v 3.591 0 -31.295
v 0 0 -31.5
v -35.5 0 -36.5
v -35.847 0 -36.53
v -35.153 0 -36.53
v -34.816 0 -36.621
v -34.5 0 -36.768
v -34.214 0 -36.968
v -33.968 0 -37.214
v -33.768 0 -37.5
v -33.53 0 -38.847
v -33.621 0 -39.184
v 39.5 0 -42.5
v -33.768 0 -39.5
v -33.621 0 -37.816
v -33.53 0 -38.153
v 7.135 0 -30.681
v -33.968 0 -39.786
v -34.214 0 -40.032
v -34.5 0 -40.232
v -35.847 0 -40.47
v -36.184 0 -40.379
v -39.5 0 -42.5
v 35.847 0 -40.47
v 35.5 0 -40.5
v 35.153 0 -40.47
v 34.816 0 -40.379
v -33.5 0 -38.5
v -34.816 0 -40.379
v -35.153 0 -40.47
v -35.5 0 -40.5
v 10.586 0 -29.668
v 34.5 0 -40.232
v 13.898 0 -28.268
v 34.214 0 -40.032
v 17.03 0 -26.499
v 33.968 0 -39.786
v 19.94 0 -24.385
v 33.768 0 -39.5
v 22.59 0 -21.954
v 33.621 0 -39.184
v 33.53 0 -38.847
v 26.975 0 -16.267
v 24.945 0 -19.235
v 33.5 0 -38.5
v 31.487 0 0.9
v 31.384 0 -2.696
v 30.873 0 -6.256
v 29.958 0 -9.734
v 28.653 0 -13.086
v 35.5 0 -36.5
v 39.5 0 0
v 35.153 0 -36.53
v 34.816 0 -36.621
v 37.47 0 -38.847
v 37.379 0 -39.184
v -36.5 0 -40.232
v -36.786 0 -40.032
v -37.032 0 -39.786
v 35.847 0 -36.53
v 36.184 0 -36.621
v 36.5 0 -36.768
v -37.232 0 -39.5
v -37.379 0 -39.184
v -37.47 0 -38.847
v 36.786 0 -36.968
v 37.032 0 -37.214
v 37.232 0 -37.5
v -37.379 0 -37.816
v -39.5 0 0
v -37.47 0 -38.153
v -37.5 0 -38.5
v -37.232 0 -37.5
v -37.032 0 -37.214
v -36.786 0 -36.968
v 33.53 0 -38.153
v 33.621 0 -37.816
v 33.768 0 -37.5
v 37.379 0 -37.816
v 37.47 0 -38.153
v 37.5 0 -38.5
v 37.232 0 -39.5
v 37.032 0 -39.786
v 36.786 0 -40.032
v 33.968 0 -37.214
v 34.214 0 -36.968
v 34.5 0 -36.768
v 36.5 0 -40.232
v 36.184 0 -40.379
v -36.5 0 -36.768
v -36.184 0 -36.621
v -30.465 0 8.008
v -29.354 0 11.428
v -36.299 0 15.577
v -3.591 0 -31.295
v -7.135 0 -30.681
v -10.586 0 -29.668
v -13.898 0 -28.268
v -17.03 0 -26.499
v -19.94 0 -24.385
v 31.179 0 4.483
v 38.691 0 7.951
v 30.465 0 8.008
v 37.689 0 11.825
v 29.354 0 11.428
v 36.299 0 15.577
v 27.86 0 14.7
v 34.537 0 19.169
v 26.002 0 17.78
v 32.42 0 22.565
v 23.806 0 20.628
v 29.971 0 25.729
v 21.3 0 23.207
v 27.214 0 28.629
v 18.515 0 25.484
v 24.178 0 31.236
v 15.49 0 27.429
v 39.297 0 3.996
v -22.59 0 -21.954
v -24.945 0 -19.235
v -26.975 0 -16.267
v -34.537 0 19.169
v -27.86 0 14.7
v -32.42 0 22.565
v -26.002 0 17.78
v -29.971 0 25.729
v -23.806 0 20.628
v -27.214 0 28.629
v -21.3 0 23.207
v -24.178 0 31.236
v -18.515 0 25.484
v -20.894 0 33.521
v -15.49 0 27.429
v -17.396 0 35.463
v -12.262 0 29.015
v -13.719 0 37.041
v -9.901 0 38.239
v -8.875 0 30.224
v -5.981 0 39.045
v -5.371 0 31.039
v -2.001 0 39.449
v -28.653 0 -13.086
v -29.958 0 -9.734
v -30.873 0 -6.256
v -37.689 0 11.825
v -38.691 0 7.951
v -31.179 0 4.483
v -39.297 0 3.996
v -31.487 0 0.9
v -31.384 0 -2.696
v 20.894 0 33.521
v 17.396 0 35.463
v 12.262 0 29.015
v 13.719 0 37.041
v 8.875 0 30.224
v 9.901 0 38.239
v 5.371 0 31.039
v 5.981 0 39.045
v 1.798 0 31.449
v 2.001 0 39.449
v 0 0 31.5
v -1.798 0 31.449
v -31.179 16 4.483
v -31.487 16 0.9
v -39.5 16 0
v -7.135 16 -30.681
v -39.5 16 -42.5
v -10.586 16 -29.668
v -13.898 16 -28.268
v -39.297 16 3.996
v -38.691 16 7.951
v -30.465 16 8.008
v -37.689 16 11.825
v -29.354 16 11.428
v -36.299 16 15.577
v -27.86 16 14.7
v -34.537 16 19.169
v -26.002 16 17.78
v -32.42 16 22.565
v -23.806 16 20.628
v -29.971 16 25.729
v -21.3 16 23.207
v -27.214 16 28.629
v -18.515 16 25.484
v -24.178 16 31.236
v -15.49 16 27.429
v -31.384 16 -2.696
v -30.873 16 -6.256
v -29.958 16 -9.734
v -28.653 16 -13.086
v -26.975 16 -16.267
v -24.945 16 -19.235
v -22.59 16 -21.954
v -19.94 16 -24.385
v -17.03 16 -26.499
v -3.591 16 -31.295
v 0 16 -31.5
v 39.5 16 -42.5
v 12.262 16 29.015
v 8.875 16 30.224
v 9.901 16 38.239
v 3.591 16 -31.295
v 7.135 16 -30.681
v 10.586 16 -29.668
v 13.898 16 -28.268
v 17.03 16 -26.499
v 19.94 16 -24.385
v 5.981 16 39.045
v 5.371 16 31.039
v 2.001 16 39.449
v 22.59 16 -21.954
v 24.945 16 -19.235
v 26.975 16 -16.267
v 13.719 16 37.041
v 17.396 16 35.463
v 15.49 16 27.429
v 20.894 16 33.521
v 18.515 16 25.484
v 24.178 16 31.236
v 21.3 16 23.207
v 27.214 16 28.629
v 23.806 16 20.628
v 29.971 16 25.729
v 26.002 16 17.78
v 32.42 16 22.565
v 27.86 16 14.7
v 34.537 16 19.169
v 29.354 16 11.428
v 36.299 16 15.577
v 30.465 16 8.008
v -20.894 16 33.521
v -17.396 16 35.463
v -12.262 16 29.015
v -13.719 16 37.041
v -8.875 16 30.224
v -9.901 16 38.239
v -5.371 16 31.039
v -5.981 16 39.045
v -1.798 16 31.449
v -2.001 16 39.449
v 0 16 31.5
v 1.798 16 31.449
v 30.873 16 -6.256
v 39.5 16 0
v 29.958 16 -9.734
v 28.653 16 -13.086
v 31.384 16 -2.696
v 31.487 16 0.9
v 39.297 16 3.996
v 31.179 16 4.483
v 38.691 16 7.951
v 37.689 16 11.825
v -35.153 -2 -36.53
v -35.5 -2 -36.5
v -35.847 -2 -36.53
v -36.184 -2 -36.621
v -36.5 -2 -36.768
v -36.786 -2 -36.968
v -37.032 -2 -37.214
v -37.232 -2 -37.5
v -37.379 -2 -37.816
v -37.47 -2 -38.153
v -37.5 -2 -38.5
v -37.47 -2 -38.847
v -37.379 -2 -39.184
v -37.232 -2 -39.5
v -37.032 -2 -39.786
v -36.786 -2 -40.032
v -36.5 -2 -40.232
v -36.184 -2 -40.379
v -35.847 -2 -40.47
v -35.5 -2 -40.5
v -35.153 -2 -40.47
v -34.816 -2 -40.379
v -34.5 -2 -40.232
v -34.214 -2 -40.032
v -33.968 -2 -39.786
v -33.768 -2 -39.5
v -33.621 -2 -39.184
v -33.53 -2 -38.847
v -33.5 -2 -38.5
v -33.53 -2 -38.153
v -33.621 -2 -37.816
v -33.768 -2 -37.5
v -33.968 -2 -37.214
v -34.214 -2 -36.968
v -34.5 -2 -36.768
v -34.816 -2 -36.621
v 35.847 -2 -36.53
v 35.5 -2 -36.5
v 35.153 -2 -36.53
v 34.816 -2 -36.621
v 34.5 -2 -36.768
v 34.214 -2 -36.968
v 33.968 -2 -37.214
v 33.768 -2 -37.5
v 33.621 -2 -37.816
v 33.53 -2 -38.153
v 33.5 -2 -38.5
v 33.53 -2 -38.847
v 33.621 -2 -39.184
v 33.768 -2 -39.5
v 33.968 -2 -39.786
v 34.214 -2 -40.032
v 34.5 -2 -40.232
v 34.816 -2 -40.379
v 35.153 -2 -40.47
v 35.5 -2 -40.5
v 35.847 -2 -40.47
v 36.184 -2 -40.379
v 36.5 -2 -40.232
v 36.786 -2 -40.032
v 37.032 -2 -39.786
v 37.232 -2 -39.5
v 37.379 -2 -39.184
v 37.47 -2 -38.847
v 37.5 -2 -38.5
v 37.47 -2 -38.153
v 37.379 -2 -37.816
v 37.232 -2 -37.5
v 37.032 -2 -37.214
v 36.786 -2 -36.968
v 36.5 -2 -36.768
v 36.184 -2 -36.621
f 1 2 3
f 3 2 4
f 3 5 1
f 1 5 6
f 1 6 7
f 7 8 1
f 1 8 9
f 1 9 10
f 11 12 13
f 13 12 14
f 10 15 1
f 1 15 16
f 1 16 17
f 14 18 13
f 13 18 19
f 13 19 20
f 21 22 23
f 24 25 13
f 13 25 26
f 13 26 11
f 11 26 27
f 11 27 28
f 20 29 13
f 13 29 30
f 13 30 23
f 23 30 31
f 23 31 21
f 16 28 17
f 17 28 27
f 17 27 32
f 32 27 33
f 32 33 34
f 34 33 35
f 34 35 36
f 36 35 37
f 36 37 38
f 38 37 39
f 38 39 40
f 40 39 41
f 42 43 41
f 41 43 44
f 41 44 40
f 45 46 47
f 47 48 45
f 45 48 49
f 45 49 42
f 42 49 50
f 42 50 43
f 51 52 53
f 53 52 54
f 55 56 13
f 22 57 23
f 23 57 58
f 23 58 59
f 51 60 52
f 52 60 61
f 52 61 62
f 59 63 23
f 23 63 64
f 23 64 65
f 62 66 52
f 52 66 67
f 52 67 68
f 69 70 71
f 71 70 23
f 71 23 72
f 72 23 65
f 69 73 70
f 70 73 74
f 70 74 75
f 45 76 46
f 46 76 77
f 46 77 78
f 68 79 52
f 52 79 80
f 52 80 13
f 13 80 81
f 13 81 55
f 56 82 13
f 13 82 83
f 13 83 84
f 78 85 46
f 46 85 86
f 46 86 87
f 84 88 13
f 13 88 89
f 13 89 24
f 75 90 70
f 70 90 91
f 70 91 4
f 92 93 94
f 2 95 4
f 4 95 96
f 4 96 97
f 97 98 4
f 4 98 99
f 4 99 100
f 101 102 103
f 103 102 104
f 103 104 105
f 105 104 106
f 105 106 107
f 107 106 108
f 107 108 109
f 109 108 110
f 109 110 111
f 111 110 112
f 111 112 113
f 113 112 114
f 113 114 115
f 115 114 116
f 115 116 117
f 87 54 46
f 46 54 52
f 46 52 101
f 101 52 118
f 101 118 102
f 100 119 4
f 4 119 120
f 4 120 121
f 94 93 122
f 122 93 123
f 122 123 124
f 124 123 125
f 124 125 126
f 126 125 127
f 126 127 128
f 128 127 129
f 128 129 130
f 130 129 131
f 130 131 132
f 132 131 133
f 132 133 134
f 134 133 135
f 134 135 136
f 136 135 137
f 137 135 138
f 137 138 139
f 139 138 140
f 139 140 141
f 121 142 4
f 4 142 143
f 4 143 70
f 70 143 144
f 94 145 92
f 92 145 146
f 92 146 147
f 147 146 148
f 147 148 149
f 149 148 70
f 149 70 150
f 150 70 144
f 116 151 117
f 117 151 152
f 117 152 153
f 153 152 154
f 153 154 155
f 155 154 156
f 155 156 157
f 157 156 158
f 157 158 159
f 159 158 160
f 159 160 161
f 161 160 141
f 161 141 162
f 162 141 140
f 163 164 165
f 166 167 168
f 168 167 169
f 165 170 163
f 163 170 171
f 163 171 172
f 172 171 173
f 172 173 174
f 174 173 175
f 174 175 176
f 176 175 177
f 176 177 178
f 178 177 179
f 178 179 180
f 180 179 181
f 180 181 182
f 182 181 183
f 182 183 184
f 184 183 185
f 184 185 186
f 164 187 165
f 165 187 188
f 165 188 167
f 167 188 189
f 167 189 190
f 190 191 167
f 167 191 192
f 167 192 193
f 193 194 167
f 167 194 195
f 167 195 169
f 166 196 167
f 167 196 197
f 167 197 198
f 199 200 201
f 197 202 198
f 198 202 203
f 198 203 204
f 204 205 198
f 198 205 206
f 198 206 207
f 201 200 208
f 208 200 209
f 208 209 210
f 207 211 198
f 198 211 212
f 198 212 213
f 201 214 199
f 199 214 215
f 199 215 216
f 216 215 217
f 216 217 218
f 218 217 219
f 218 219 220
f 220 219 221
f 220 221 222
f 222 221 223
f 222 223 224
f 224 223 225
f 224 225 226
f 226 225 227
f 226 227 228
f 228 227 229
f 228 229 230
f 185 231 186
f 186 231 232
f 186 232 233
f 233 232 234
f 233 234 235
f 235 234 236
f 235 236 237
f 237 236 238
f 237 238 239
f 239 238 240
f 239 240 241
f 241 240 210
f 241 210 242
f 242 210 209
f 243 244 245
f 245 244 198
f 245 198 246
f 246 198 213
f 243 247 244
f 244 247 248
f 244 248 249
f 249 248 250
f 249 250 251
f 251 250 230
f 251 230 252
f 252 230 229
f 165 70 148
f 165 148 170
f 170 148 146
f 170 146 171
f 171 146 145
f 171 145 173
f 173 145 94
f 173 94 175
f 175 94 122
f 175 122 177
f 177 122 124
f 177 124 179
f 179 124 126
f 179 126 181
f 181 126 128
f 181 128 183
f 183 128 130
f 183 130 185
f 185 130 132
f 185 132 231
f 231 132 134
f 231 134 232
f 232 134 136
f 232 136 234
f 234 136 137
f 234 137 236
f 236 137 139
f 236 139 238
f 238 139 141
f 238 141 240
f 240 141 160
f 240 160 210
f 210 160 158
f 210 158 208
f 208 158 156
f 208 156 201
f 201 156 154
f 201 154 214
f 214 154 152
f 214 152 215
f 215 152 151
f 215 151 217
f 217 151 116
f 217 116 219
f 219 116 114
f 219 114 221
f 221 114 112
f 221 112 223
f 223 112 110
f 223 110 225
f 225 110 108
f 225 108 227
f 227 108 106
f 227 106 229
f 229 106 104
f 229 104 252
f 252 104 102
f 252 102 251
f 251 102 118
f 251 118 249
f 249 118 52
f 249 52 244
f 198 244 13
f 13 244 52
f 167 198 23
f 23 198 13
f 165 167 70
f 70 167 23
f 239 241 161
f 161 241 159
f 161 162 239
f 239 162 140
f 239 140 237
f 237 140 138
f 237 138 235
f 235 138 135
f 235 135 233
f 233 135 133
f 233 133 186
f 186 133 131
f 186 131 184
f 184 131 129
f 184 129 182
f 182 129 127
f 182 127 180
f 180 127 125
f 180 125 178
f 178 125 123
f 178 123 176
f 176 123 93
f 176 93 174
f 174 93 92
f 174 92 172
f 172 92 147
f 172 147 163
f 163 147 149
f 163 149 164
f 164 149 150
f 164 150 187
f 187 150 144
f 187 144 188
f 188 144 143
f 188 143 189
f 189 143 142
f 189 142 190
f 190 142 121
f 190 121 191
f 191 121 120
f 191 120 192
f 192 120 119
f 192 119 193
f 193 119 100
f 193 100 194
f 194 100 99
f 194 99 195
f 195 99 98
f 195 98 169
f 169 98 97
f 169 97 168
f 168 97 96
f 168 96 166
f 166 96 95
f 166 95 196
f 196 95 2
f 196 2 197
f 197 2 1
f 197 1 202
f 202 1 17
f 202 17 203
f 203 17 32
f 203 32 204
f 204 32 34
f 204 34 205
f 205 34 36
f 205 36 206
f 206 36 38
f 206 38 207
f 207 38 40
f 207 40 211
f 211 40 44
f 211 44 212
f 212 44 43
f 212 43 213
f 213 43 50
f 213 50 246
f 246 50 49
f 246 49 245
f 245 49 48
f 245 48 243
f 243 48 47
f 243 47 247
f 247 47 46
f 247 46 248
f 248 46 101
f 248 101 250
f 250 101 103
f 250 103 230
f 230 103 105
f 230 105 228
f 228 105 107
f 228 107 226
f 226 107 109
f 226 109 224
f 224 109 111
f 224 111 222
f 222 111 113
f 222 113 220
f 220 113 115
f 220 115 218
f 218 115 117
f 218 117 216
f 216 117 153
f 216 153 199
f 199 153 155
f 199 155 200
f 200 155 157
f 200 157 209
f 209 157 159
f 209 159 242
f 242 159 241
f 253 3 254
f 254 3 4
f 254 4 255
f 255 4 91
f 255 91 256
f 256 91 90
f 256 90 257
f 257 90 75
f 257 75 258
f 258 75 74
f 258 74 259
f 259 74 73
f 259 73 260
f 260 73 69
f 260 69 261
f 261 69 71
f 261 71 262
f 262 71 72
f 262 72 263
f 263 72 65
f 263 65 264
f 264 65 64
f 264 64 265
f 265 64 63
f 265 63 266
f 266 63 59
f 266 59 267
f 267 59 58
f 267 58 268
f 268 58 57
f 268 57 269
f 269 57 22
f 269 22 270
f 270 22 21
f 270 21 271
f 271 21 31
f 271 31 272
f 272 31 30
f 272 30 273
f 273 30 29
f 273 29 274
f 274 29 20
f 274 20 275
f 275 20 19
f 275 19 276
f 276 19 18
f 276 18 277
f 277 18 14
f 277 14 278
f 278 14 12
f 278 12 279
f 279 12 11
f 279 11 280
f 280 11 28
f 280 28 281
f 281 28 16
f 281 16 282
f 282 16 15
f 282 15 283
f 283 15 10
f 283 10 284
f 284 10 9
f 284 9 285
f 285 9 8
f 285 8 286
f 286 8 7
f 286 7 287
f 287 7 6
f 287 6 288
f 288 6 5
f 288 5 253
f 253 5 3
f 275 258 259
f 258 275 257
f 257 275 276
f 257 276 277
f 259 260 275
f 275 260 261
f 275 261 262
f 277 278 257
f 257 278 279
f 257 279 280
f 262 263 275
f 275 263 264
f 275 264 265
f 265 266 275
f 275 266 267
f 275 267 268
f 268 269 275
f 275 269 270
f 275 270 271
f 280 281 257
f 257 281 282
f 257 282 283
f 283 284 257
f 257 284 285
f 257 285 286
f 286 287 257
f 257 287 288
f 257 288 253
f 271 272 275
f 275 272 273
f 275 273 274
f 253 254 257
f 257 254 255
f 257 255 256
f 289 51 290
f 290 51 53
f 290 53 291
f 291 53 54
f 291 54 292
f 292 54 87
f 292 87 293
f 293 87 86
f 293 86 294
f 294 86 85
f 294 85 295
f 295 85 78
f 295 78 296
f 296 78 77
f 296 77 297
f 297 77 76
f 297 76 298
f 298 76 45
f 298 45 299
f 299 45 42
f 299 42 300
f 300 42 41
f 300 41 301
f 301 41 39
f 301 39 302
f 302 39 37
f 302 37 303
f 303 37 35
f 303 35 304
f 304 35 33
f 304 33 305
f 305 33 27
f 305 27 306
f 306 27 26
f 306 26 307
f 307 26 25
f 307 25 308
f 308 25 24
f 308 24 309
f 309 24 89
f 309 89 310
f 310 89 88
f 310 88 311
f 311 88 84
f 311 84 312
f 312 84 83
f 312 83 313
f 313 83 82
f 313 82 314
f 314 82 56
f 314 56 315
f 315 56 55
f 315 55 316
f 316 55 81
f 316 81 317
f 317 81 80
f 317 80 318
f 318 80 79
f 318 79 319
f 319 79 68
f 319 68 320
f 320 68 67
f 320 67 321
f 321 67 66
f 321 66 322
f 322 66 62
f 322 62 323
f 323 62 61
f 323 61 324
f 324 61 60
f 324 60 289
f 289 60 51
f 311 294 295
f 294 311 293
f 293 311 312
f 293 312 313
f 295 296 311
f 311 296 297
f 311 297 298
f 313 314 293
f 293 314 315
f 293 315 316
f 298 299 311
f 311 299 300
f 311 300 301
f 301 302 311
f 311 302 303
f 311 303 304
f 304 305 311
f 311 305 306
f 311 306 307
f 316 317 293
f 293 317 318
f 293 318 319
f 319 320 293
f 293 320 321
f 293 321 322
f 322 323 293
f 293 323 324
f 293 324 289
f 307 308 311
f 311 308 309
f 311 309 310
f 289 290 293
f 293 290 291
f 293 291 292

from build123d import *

# Parameters (mm, degrees)
SKETCH18_R           = 31.5
BOSS_EXTRUDE13_DEPTH = 16
SKETCH19_R           = 2
BOSS_EXTRUDE14_DEPTH = 2


with BuildPart() as part:
    # Sketch18 → Boss-Extrude13 (new body)
    with BuildSketch(Plane(origin=(0, 0, 0), x_dir=(1, 0, 0), z_dir=(0, 1, 0))):
        with BuildLine():
            Line((-39.5, 0), (-39.5, 42.5))
            Line((-39.5, 42.5), (39.5, 42.5))
            Line((39.5, 42.5), (39.5, 0))
            ThreePointArc((39.5, 0), (0, -39.5), (-39.5, 0))
        make_face()
        Circle(SKETCH18_R, mode=Mode.SUBTRACT)
    extrude(amount=BOSS_EXTRUDE13_DEPTH)

    # Sketch19 → Boss-Extrude14 (add)
    with BuildSketch(Plane.XZ):
        with Locations((-35.5, -38.5)):
            Circle(SKETCH19_R)
        with Locations((35.5, -38.5)):
            Circle(SKETCH19_R)
    extrude(amount=BOSS_EXTRUDE14_DEPTH)


solid = part.part
